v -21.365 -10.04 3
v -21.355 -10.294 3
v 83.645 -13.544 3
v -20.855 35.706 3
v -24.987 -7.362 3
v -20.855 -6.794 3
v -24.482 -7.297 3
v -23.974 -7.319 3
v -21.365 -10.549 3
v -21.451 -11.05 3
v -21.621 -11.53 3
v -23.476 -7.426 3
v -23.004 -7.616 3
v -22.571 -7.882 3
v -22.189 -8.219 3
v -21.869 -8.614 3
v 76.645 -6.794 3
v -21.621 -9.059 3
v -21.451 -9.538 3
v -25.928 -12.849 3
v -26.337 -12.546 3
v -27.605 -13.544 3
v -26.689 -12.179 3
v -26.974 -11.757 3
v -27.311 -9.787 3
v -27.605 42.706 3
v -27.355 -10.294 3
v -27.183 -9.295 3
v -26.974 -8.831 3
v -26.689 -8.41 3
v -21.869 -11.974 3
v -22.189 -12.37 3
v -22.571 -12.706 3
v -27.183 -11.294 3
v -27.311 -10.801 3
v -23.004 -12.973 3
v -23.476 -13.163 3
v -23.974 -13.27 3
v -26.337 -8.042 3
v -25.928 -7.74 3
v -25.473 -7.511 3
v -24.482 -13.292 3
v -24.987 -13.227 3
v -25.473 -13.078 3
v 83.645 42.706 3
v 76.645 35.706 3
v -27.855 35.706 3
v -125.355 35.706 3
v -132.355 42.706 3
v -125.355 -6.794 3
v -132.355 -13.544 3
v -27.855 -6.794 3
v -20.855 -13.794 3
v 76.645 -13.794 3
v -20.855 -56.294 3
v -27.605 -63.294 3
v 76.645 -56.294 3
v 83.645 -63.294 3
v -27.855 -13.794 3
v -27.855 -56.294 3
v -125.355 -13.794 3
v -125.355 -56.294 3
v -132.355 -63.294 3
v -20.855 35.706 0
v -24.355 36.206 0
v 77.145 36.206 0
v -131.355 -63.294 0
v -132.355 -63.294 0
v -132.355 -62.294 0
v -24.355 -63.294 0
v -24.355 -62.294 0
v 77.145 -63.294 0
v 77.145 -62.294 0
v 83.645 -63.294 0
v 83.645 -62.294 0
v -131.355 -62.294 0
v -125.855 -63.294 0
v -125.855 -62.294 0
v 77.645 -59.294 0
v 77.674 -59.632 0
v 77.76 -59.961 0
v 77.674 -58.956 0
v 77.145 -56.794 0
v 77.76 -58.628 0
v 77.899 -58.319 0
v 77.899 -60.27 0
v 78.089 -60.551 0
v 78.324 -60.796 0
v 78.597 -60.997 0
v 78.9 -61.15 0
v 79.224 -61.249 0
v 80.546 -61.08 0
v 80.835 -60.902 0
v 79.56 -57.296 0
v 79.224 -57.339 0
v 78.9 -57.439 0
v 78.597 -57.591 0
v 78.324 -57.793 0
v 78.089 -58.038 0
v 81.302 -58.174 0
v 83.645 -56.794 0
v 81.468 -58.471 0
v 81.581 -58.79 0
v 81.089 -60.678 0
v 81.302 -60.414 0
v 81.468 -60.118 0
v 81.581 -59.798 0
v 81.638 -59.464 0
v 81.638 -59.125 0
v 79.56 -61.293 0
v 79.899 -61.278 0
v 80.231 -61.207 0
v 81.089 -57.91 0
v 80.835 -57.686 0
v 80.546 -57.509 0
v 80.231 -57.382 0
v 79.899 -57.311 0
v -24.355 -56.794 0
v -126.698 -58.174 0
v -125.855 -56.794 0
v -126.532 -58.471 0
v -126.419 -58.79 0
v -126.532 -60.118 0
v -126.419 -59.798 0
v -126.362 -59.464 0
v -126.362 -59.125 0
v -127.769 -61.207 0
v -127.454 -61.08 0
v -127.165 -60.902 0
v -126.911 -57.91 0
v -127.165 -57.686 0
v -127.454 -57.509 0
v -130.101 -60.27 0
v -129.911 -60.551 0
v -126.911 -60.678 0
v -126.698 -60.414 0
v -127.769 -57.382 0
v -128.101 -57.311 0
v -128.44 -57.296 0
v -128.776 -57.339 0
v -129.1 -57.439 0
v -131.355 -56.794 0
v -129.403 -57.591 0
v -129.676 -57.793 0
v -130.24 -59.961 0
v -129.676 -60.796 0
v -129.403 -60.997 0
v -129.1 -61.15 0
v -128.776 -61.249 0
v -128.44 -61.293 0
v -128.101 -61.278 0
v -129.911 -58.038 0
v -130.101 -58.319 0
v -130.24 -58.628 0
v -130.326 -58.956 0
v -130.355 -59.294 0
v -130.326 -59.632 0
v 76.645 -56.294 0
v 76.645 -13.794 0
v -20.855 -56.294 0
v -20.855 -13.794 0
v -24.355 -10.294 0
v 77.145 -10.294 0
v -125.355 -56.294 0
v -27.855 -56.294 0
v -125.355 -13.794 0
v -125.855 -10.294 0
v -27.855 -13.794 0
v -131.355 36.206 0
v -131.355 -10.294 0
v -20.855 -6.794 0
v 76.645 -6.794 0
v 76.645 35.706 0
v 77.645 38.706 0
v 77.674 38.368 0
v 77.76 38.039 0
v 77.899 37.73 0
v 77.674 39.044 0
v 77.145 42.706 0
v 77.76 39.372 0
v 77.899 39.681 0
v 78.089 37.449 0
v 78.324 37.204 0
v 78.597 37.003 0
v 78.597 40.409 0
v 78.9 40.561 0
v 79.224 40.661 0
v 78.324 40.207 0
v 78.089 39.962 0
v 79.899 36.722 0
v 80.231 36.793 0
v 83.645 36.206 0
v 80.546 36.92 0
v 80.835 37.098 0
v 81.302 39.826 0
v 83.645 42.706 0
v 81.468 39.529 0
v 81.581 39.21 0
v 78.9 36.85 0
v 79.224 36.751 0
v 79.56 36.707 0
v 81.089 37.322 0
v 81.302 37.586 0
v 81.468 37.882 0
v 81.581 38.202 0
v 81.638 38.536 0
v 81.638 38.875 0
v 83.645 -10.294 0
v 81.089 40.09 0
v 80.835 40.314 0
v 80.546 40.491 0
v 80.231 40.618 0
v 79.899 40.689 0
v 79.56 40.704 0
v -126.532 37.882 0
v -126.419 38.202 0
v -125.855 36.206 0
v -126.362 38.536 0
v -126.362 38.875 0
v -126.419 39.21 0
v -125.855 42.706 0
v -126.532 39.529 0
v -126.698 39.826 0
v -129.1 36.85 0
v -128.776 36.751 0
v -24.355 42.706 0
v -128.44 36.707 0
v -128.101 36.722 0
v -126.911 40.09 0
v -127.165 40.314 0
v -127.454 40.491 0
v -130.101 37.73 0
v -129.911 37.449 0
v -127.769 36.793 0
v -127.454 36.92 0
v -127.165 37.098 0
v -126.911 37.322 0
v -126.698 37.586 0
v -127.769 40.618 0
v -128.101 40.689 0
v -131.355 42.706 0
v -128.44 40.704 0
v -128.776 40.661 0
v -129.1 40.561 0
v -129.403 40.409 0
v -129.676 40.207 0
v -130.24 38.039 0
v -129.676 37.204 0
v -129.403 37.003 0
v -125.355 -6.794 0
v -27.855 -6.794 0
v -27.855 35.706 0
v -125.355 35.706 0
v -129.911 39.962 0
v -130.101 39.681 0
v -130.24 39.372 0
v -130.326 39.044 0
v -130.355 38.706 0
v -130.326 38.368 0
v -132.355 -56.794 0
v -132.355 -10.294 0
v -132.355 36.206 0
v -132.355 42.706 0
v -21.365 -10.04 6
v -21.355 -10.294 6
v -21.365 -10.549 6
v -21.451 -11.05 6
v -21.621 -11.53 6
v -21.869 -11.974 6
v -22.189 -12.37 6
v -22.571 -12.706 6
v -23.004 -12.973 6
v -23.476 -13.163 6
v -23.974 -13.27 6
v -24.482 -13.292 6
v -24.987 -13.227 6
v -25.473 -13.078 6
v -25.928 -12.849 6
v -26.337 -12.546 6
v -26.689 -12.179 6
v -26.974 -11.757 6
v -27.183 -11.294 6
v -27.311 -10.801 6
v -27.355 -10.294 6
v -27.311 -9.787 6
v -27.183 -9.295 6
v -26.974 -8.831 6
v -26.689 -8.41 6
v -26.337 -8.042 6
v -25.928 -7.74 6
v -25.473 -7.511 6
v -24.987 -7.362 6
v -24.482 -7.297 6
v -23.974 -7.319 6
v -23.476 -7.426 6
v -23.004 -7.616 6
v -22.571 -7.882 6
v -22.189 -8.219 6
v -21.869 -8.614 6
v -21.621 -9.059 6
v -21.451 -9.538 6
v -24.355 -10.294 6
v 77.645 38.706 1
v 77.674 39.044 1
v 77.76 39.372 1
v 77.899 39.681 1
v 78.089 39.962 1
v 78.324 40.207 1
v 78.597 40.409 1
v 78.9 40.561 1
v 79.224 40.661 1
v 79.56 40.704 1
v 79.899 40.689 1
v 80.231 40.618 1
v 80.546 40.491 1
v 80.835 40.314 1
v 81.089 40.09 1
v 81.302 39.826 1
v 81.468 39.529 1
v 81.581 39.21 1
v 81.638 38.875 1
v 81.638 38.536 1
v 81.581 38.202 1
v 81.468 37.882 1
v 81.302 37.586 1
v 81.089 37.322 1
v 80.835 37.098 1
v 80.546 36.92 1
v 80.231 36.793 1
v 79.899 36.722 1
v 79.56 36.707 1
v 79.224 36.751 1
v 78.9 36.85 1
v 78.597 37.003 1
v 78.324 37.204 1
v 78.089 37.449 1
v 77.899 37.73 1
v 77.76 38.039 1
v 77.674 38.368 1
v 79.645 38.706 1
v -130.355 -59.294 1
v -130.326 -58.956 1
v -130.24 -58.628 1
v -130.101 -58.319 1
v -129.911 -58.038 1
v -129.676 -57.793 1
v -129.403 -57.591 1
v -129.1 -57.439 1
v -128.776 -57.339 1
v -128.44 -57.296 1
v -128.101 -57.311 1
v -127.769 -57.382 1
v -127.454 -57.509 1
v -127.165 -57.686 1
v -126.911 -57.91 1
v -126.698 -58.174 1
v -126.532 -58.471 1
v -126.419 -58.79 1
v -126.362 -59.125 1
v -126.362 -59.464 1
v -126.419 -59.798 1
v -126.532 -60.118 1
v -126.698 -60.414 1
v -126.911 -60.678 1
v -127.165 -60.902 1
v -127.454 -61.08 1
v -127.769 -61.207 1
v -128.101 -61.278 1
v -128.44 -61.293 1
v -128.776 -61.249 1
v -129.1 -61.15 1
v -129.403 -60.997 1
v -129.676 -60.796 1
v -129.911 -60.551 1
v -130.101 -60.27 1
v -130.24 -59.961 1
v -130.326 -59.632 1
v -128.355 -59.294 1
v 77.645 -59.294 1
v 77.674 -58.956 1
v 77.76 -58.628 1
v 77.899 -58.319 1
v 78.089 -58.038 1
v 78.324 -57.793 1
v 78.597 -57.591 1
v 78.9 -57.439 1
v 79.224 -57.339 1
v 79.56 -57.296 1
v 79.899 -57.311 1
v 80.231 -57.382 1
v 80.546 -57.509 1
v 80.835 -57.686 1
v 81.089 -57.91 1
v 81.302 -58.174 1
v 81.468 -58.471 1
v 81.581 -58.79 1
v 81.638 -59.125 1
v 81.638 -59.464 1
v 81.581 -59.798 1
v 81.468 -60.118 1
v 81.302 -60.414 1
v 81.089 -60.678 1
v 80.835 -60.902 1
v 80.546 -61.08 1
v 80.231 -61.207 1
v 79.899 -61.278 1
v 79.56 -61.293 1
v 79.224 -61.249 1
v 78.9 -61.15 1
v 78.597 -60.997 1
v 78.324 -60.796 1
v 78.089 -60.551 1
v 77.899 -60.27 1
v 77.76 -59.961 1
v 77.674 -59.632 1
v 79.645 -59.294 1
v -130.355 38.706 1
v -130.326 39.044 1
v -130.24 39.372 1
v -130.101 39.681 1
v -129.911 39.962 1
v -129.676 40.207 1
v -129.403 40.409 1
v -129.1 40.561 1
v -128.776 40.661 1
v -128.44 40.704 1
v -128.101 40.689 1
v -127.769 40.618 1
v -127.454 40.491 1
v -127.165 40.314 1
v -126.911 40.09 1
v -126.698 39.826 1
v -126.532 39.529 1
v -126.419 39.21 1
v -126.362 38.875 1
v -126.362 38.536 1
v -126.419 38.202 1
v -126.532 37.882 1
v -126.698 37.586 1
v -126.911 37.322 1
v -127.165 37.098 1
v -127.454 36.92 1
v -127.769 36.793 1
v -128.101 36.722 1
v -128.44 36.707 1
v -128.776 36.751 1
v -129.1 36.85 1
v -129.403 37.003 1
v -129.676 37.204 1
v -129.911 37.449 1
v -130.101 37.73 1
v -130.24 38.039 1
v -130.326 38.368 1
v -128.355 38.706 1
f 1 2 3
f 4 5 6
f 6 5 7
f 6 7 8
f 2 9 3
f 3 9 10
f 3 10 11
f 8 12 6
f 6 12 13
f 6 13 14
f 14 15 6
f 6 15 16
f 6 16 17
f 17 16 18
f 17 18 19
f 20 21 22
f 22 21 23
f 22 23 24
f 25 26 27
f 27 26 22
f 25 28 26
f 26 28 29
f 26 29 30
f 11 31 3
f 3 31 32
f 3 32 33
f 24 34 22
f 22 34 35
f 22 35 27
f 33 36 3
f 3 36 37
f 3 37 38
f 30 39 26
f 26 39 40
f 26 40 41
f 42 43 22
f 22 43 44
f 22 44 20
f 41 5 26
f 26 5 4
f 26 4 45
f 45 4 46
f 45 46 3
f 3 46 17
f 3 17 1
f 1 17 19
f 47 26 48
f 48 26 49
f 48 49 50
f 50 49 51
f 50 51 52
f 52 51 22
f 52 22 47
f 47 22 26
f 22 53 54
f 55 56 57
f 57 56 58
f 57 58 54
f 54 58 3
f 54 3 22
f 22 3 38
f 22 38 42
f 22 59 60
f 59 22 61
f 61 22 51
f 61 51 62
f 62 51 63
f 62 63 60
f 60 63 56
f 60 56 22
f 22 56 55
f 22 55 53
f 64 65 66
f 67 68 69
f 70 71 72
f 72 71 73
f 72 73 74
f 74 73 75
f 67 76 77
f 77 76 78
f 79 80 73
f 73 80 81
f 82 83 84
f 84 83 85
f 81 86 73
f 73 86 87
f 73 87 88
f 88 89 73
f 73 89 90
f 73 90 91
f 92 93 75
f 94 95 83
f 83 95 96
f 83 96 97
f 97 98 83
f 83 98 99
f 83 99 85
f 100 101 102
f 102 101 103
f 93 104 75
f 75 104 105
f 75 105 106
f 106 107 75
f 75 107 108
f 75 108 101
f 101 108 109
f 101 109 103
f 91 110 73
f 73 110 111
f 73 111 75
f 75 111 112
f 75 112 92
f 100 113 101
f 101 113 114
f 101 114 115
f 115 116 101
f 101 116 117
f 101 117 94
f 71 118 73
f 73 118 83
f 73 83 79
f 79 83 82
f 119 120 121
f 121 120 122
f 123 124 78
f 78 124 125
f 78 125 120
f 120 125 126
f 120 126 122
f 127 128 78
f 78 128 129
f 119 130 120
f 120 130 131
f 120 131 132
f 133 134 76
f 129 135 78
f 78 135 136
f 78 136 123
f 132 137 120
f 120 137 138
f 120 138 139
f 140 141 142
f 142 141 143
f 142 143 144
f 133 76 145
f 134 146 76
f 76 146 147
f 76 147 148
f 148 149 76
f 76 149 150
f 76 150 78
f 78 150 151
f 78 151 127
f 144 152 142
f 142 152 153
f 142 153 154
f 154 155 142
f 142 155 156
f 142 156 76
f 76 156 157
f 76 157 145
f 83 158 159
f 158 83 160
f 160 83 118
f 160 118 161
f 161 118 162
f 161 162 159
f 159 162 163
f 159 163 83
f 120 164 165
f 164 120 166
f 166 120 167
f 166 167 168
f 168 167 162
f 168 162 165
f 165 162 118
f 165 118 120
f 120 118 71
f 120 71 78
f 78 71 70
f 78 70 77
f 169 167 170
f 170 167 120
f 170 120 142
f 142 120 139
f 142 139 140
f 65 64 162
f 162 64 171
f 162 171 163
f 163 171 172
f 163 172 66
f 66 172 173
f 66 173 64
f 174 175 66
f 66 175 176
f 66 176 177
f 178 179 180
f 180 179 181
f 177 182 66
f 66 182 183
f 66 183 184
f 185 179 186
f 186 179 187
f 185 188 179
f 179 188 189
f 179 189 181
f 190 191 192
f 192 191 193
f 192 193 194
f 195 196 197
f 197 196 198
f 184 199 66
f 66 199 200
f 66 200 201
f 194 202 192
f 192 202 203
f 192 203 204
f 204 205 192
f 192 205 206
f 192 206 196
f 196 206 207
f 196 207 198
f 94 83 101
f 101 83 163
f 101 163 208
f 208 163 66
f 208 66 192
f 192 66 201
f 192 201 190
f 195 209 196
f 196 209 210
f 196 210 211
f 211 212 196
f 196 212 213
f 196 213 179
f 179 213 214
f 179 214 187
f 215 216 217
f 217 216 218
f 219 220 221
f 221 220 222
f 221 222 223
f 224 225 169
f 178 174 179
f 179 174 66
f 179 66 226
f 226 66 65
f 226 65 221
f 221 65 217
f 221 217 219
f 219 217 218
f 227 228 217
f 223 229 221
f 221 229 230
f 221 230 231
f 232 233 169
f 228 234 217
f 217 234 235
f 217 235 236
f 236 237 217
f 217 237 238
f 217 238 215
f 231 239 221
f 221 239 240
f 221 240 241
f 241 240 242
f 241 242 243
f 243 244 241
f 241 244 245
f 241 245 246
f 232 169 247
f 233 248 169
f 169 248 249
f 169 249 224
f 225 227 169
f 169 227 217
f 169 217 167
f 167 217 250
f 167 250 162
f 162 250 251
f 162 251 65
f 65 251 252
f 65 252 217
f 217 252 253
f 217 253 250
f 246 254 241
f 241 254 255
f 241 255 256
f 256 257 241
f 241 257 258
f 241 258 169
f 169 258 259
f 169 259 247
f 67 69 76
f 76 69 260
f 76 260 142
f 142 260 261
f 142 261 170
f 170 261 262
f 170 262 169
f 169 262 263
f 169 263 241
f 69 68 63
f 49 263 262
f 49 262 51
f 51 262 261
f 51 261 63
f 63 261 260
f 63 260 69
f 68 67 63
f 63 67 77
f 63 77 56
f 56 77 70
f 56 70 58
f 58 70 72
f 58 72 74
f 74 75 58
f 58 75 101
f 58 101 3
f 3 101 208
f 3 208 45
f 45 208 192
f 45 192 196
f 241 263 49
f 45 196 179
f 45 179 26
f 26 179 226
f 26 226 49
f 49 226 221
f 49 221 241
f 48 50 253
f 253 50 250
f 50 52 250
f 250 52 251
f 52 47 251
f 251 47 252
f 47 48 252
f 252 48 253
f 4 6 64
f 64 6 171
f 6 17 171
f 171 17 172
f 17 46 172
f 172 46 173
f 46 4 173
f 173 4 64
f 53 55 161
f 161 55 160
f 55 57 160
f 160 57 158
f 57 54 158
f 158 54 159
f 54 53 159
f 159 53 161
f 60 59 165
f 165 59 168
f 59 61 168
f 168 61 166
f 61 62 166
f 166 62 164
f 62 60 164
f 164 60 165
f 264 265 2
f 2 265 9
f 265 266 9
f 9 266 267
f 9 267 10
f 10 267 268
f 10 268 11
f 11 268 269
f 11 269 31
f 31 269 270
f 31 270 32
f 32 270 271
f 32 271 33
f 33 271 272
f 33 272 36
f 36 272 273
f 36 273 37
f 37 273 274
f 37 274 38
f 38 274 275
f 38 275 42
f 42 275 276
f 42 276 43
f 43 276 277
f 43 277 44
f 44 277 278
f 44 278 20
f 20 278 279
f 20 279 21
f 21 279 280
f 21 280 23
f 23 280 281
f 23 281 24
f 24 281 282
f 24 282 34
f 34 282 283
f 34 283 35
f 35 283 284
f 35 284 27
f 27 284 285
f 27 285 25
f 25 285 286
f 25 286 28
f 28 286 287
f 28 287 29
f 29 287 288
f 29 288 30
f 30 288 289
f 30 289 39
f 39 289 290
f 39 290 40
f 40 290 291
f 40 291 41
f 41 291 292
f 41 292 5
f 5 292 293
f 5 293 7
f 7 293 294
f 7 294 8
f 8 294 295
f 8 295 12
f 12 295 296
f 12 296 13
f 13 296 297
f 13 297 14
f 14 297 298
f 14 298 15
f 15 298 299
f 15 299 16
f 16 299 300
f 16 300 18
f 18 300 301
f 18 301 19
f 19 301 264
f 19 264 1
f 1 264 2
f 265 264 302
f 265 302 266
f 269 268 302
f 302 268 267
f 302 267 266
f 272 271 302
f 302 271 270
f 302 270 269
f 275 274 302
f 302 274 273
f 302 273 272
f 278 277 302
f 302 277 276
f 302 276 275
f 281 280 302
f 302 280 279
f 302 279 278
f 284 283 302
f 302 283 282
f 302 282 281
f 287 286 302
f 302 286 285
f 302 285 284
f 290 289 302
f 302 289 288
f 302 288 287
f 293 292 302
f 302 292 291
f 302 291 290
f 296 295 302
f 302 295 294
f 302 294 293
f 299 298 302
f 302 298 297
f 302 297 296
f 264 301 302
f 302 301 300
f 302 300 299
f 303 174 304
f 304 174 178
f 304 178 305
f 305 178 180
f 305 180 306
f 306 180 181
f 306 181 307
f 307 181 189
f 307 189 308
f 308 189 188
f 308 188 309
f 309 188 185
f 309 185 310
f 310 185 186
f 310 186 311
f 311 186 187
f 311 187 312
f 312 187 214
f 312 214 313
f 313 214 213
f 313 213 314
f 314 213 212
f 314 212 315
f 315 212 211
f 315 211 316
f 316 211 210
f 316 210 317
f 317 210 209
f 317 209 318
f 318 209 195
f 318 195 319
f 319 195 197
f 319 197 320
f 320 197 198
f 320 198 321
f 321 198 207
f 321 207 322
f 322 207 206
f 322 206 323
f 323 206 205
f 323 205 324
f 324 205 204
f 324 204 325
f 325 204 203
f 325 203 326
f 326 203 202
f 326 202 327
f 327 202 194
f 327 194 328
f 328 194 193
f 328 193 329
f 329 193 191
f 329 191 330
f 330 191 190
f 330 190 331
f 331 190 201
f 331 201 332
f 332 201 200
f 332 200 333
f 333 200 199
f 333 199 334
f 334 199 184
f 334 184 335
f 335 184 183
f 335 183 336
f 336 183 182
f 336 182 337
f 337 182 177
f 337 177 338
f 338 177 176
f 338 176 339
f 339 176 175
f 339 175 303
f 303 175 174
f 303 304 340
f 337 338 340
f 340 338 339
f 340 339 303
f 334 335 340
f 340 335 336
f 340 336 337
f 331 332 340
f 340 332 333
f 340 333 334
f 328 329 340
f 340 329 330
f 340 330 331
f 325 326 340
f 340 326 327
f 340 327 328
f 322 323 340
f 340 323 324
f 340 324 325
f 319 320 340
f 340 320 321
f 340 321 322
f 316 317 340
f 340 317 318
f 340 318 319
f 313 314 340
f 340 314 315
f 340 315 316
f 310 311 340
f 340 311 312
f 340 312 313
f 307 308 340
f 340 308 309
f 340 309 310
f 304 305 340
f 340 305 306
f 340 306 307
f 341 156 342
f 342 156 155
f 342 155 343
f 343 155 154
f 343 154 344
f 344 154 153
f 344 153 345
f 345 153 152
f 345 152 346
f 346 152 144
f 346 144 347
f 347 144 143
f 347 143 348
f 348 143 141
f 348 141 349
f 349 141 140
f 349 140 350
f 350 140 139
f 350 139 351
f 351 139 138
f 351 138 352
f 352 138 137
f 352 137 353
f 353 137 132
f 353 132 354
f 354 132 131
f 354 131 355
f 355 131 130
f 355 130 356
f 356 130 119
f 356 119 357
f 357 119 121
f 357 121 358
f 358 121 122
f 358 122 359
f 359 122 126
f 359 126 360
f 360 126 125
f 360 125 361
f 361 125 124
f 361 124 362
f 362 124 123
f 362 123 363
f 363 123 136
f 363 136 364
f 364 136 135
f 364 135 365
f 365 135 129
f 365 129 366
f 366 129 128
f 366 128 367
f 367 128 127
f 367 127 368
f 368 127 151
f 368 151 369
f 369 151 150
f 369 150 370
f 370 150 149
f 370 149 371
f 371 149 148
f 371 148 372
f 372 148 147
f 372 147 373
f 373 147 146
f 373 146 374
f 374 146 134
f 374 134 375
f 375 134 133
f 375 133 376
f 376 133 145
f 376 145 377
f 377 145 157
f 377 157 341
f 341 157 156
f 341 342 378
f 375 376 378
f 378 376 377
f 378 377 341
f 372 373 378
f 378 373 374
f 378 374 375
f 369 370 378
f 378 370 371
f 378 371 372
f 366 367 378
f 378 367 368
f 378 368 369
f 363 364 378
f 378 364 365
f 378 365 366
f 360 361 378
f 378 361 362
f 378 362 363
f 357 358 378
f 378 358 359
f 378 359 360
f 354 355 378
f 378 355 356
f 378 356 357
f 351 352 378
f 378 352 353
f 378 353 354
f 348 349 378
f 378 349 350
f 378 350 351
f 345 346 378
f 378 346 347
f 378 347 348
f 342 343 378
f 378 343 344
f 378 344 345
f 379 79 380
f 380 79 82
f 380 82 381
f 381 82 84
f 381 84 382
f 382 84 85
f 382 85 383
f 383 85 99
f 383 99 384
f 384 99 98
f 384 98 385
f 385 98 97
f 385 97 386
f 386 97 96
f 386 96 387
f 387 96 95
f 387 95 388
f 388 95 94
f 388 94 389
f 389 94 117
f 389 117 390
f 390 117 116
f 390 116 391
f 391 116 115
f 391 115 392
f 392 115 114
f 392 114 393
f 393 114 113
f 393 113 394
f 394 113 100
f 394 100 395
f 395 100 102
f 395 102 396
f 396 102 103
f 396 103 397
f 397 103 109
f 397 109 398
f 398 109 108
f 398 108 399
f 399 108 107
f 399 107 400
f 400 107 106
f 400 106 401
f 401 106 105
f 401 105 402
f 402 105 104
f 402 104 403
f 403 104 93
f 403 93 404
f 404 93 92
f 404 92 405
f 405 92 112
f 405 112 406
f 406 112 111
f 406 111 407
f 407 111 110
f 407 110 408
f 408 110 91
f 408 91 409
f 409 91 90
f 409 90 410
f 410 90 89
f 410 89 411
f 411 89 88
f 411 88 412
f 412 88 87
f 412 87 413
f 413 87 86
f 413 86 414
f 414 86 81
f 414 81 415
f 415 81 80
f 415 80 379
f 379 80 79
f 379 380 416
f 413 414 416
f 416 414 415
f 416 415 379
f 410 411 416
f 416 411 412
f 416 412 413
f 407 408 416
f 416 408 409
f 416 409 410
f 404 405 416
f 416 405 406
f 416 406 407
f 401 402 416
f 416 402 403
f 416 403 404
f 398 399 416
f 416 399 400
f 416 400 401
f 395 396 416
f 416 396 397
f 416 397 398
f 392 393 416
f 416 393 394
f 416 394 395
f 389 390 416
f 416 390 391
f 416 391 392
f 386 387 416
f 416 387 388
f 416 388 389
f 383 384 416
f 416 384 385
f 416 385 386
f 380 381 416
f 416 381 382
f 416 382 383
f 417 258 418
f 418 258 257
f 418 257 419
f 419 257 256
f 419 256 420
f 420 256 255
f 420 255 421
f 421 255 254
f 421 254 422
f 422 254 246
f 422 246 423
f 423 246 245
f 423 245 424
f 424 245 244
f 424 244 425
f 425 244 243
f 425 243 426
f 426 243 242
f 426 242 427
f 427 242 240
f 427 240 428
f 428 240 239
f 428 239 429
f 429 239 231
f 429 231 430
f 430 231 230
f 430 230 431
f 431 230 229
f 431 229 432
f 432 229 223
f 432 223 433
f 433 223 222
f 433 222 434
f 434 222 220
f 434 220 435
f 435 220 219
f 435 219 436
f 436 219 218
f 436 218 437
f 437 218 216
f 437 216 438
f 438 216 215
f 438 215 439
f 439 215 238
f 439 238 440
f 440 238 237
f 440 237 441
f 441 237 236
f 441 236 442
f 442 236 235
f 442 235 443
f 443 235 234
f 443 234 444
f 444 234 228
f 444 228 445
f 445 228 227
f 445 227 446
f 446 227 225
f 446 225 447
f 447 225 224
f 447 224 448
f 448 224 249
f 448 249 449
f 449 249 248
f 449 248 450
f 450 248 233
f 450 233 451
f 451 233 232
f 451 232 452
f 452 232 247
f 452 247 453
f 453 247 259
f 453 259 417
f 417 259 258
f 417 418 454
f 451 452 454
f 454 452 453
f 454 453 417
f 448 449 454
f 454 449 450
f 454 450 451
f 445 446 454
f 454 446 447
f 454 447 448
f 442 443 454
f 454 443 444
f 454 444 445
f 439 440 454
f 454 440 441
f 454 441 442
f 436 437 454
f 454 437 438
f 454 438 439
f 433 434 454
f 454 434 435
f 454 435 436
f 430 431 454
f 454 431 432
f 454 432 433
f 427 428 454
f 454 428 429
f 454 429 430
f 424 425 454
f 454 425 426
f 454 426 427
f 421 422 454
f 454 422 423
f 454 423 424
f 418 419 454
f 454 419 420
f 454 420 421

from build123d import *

# Parameters (mm, degrees)
ESBO_O1_W                = 216
ESBO_O1_H                = 106
ESBO_O1_W_2              = 97.5
ESBO_O1_H_2              = 42.5
RESSALTO_EXTRUS_O1_DEPTH = 3
ESBO_O2_R                = 3
RESSALTO_EXTRUS_O2_DEPTH = 3
ESBO_O3_R                = 2
CORTE_EXTRUS_O1_DEPTH    = 1


with BuildPart() as part:
    # Esboço1 → Ressalto-extrusão1 (new body)
    with BuildSketch(Plane.XY):
        with Locations((-24.354637835, -10.294366601)):
            Rectangle(ESBO_O1_W, ESBO_O1_H)
        with Locations((-76.604637835, 14.455633399)):
            Rectangle(ESBO_O1_W_2, ESBO_O1_H_2, mode=Mode.SUBTRACT)
        with Locations((27.895362165, 14.455633399)):
            Rectangle(ESBO_O1_W_2, ESBO_O1_H_2, mode=Mode.SUBTRACT)
        with Locations((27.895362165, -35.044366601)):
            Rectangle(ESBO_O1_W_2, ESBO_O1_H_2, mode=Mode.SUBTRACT)
        with Locations((-76.604637835, -35.044366601)):
            Rectangle(ESBO_O1_W_2, ESBO_O1_H_2, mode=Mode.SUBTRACT)
    extrude(amount=RESSALTO_EXTRUS_O1_DEPTH)

    # Esboço2 → Ressalto-extrusão2 (add)
    with BuildSketch(Plane.XY.offset(3)):
        with Locations((-24.354637835, -10.294366601)):
            Circle(ESBO_O2_R)
    extrude(amount=RESSALTO_EXTRUS_O2_DEPTH)

    # Esboço3 → Corte-extrusão1 (cut)
    with BuildSketch(Plane(origin=(0, 0, 0), x_dir=(-1, 0, 0), z_dir=(0, 0, -1))):
        with Locations((-79.645362165, 38.705633399)):
            Circle(ESBO_O3_R)
        with Locations((128.354637835, 38.705633399)):
            Circle(ESBO_O3_R)
        with Locations((-79.645362165, -59.294366601)):
            Circle(ESBO_O3_R)
        with Locations((128.354637835, -59.294366601)):
            Circle(ESBO_O3_R)
    extrude(amount=-CORTE_EXTRUS_O1_DEPTH, mode=Mode.SUBTRACT)


solid = part.part
